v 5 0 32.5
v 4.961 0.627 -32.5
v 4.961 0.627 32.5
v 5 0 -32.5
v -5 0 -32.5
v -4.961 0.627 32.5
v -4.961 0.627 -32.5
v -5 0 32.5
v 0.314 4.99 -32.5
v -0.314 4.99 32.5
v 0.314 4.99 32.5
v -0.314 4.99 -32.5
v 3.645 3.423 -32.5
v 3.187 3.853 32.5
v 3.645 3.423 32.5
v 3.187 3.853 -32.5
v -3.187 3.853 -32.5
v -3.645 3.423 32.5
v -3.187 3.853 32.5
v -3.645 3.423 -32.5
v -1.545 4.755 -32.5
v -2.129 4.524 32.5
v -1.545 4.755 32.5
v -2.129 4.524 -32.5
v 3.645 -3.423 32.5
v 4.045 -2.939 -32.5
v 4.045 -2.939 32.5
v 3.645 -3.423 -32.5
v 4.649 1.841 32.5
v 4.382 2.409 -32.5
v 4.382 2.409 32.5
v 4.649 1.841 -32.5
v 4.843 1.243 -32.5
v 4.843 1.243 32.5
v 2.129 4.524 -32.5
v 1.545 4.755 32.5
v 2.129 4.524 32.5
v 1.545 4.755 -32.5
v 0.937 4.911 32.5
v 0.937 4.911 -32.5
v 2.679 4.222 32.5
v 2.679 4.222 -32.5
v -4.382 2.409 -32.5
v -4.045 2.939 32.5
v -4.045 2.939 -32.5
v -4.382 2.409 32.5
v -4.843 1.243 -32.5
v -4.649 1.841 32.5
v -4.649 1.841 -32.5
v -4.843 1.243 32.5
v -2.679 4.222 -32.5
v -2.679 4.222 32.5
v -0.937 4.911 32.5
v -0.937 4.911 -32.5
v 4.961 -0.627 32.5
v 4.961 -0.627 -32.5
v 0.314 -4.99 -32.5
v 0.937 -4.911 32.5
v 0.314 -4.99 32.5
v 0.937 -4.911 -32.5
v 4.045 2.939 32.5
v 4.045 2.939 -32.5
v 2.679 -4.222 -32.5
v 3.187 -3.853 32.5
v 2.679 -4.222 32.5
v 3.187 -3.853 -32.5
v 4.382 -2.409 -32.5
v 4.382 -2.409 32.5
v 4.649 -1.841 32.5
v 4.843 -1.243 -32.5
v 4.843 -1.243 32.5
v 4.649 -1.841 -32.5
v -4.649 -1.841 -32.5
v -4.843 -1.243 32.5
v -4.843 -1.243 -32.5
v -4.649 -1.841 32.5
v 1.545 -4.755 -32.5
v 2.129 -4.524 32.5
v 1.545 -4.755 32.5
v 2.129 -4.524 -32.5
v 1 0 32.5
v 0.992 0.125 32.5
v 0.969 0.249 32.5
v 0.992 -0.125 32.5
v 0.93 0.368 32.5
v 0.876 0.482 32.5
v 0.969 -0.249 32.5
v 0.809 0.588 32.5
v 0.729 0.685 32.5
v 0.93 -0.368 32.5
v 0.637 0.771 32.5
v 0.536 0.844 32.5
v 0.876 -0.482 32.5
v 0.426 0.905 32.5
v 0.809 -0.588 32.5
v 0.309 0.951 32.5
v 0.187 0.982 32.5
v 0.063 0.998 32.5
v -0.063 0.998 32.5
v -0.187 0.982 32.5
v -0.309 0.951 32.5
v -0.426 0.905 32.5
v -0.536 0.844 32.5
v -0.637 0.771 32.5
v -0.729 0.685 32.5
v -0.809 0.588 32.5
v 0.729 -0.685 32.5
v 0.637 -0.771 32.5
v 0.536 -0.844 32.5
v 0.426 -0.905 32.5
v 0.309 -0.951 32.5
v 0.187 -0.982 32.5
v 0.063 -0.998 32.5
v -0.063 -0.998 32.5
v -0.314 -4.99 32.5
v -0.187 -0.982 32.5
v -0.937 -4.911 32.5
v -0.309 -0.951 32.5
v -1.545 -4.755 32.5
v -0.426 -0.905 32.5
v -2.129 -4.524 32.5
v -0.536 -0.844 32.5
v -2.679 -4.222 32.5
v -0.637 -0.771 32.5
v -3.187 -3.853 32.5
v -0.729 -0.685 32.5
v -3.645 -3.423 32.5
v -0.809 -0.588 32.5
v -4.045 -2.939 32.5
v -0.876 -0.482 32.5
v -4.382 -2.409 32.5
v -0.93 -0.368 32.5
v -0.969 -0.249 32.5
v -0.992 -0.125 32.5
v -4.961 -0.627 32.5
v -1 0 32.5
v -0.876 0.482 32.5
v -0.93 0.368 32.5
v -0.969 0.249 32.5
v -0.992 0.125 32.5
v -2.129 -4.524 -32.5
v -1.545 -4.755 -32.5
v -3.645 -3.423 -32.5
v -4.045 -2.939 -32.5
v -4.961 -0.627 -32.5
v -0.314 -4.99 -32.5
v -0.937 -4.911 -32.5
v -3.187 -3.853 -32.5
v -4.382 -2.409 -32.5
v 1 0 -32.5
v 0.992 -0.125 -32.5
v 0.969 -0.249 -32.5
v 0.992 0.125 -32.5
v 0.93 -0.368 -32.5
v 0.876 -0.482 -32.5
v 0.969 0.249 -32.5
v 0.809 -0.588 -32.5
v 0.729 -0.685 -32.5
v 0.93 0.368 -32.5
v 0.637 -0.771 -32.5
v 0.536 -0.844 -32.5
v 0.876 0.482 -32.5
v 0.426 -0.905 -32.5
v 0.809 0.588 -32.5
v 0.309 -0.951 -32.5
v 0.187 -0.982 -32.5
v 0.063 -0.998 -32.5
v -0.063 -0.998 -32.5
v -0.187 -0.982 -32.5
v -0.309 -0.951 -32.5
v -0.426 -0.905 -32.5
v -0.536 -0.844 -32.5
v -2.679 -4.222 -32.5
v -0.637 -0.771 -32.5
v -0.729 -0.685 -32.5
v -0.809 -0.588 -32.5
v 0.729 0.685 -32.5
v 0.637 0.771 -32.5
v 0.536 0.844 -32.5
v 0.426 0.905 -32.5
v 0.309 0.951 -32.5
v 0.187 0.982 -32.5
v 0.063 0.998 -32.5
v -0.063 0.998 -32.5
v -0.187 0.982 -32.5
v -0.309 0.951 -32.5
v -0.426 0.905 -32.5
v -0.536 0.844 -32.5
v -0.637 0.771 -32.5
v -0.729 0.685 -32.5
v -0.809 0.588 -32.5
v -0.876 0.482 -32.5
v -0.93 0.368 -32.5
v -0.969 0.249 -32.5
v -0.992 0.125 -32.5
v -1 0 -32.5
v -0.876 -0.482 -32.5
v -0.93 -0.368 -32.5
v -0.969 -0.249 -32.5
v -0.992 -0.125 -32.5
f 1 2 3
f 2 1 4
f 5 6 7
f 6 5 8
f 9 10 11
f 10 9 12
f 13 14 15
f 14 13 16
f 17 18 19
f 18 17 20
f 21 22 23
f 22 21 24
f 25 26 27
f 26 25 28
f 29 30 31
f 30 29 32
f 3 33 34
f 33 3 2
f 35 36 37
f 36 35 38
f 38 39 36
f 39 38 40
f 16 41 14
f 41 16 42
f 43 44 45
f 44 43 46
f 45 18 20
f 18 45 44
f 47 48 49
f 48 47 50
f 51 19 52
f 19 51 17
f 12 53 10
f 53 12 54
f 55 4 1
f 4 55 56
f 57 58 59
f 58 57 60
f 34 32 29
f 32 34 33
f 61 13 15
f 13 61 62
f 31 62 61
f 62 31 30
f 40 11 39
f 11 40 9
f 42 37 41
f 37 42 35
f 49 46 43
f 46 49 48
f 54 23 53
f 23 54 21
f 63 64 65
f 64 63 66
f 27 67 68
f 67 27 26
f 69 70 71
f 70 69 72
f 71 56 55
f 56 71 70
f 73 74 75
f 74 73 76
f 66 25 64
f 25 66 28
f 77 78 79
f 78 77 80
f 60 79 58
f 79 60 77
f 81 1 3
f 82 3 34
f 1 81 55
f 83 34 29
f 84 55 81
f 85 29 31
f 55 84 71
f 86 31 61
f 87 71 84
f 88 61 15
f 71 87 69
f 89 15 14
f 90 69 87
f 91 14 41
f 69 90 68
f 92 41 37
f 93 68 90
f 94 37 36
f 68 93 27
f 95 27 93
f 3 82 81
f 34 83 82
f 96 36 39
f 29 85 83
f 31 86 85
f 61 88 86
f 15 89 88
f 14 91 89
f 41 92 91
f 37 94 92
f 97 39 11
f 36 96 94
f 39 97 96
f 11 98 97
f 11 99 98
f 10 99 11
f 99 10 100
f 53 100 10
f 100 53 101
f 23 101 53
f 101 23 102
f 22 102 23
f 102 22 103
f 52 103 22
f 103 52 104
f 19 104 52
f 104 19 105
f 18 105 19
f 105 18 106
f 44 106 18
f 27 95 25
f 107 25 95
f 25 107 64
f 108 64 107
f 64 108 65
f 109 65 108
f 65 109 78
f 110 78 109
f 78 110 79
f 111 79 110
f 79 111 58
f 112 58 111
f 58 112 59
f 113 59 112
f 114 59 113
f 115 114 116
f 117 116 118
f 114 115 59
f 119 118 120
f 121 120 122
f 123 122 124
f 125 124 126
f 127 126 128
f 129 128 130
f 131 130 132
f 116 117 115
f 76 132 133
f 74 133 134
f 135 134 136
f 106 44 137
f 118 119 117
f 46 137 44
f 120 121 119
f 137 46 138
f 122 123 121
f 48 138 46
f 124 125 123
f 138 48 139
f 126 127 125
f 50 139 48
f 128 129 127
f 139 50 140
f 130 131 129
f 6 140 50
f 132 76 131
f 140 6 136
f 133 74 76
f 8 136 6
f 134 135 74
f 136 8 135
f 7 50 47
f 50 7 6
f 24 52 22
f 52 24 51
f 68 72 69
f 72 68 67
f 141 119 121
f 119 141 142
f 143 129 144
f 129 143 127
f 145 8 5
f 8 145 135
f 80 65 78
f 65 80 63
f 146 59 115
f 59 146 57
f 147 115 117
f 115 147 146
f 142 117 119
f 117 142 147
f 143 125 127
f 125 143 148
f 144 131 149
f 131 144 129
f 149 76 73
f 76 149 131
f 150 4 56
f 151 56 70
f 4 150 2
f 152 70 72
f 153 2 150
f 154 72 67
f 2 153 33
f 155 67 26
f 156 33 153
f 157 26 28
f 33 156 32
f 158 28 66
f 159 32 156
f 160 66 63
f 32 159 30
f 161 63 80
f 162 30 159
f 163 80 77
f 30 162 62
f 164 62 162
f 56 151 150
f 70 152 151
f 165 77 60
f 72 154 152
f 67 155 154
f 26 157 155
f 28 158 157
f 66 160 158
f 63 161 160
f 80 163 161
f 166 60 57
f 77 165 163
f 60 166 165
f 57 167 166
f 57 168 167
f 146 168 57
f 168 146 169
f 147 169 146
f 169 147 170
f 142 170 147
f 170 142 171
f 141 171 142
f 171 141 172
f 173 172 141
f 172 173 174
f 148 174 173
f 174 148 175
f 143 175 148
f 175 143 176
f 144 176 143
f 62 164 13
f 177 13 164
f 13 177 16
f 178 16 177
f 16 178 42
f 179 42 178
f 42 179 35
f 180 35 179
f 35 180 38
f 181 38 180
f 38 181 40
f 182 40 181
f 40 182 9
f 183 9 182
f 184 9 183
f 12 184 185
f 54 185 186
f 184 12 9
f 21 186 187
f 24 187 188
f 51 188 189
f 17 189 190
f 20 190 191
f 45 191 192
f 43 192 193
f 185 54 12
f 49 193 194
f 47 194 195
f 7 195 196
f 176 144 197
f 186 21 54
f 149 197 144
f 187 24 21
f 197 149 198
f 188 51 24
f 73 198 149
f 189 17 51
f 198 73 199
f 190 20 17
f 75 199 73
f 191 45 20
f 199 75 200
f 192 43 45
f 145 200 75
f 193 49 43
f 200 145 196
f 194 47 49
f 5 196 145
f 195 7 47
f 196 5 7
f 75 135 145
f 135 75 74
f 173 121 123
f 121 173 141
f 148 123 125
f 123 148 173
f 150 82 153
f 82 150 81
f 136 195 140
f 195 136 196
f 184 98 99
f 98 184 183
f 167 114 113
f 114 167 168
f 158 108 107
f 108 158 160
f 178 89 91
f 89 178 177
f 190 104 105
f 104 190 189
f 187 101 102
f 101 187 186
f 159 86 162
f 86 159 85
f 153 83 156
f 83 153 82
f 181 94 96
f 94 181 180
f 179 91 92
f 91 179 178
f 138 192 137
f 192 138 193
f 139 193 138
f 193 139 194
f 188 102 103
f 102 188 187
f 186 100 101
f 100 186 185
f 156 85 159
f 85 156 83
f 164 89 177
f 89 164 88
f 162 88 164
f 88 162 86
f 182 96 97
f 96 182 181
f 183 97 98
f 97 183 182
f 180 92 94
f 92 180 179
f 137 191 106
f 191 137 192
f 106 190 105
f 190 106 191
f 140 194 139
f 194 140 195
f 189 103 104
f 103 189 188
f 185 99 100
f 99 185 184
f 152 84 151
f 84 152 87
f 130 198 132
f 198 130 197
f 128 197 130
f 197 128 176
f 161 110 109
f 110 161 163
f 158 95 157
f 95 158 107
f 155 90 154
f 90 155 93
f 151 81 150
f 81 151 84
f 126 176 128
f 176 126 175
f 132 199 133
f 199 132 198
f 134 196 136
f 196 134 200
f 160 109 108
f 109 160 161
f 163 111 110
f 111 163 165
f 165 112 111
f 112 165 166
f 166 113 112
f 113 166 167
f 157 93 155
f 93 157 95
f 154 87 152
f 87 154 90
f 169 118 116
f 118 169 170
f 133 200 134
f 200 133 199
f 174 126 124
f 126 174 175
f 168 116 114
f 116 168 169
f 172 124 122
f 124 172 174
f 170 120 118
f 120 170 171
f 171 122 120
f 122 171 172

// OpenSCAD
$fn = 50;


difference() {
	union() {
		translate(v = [0, 0, -32.5000000000]) {
			cylinder(h = 65, r = 5.0000000000);
		}
	}
	union() {
		translate(v = [0, 0, -100.0000000000]) {
			cylinder(h = 200, r = 1.0000000000);
		}
	}
}
